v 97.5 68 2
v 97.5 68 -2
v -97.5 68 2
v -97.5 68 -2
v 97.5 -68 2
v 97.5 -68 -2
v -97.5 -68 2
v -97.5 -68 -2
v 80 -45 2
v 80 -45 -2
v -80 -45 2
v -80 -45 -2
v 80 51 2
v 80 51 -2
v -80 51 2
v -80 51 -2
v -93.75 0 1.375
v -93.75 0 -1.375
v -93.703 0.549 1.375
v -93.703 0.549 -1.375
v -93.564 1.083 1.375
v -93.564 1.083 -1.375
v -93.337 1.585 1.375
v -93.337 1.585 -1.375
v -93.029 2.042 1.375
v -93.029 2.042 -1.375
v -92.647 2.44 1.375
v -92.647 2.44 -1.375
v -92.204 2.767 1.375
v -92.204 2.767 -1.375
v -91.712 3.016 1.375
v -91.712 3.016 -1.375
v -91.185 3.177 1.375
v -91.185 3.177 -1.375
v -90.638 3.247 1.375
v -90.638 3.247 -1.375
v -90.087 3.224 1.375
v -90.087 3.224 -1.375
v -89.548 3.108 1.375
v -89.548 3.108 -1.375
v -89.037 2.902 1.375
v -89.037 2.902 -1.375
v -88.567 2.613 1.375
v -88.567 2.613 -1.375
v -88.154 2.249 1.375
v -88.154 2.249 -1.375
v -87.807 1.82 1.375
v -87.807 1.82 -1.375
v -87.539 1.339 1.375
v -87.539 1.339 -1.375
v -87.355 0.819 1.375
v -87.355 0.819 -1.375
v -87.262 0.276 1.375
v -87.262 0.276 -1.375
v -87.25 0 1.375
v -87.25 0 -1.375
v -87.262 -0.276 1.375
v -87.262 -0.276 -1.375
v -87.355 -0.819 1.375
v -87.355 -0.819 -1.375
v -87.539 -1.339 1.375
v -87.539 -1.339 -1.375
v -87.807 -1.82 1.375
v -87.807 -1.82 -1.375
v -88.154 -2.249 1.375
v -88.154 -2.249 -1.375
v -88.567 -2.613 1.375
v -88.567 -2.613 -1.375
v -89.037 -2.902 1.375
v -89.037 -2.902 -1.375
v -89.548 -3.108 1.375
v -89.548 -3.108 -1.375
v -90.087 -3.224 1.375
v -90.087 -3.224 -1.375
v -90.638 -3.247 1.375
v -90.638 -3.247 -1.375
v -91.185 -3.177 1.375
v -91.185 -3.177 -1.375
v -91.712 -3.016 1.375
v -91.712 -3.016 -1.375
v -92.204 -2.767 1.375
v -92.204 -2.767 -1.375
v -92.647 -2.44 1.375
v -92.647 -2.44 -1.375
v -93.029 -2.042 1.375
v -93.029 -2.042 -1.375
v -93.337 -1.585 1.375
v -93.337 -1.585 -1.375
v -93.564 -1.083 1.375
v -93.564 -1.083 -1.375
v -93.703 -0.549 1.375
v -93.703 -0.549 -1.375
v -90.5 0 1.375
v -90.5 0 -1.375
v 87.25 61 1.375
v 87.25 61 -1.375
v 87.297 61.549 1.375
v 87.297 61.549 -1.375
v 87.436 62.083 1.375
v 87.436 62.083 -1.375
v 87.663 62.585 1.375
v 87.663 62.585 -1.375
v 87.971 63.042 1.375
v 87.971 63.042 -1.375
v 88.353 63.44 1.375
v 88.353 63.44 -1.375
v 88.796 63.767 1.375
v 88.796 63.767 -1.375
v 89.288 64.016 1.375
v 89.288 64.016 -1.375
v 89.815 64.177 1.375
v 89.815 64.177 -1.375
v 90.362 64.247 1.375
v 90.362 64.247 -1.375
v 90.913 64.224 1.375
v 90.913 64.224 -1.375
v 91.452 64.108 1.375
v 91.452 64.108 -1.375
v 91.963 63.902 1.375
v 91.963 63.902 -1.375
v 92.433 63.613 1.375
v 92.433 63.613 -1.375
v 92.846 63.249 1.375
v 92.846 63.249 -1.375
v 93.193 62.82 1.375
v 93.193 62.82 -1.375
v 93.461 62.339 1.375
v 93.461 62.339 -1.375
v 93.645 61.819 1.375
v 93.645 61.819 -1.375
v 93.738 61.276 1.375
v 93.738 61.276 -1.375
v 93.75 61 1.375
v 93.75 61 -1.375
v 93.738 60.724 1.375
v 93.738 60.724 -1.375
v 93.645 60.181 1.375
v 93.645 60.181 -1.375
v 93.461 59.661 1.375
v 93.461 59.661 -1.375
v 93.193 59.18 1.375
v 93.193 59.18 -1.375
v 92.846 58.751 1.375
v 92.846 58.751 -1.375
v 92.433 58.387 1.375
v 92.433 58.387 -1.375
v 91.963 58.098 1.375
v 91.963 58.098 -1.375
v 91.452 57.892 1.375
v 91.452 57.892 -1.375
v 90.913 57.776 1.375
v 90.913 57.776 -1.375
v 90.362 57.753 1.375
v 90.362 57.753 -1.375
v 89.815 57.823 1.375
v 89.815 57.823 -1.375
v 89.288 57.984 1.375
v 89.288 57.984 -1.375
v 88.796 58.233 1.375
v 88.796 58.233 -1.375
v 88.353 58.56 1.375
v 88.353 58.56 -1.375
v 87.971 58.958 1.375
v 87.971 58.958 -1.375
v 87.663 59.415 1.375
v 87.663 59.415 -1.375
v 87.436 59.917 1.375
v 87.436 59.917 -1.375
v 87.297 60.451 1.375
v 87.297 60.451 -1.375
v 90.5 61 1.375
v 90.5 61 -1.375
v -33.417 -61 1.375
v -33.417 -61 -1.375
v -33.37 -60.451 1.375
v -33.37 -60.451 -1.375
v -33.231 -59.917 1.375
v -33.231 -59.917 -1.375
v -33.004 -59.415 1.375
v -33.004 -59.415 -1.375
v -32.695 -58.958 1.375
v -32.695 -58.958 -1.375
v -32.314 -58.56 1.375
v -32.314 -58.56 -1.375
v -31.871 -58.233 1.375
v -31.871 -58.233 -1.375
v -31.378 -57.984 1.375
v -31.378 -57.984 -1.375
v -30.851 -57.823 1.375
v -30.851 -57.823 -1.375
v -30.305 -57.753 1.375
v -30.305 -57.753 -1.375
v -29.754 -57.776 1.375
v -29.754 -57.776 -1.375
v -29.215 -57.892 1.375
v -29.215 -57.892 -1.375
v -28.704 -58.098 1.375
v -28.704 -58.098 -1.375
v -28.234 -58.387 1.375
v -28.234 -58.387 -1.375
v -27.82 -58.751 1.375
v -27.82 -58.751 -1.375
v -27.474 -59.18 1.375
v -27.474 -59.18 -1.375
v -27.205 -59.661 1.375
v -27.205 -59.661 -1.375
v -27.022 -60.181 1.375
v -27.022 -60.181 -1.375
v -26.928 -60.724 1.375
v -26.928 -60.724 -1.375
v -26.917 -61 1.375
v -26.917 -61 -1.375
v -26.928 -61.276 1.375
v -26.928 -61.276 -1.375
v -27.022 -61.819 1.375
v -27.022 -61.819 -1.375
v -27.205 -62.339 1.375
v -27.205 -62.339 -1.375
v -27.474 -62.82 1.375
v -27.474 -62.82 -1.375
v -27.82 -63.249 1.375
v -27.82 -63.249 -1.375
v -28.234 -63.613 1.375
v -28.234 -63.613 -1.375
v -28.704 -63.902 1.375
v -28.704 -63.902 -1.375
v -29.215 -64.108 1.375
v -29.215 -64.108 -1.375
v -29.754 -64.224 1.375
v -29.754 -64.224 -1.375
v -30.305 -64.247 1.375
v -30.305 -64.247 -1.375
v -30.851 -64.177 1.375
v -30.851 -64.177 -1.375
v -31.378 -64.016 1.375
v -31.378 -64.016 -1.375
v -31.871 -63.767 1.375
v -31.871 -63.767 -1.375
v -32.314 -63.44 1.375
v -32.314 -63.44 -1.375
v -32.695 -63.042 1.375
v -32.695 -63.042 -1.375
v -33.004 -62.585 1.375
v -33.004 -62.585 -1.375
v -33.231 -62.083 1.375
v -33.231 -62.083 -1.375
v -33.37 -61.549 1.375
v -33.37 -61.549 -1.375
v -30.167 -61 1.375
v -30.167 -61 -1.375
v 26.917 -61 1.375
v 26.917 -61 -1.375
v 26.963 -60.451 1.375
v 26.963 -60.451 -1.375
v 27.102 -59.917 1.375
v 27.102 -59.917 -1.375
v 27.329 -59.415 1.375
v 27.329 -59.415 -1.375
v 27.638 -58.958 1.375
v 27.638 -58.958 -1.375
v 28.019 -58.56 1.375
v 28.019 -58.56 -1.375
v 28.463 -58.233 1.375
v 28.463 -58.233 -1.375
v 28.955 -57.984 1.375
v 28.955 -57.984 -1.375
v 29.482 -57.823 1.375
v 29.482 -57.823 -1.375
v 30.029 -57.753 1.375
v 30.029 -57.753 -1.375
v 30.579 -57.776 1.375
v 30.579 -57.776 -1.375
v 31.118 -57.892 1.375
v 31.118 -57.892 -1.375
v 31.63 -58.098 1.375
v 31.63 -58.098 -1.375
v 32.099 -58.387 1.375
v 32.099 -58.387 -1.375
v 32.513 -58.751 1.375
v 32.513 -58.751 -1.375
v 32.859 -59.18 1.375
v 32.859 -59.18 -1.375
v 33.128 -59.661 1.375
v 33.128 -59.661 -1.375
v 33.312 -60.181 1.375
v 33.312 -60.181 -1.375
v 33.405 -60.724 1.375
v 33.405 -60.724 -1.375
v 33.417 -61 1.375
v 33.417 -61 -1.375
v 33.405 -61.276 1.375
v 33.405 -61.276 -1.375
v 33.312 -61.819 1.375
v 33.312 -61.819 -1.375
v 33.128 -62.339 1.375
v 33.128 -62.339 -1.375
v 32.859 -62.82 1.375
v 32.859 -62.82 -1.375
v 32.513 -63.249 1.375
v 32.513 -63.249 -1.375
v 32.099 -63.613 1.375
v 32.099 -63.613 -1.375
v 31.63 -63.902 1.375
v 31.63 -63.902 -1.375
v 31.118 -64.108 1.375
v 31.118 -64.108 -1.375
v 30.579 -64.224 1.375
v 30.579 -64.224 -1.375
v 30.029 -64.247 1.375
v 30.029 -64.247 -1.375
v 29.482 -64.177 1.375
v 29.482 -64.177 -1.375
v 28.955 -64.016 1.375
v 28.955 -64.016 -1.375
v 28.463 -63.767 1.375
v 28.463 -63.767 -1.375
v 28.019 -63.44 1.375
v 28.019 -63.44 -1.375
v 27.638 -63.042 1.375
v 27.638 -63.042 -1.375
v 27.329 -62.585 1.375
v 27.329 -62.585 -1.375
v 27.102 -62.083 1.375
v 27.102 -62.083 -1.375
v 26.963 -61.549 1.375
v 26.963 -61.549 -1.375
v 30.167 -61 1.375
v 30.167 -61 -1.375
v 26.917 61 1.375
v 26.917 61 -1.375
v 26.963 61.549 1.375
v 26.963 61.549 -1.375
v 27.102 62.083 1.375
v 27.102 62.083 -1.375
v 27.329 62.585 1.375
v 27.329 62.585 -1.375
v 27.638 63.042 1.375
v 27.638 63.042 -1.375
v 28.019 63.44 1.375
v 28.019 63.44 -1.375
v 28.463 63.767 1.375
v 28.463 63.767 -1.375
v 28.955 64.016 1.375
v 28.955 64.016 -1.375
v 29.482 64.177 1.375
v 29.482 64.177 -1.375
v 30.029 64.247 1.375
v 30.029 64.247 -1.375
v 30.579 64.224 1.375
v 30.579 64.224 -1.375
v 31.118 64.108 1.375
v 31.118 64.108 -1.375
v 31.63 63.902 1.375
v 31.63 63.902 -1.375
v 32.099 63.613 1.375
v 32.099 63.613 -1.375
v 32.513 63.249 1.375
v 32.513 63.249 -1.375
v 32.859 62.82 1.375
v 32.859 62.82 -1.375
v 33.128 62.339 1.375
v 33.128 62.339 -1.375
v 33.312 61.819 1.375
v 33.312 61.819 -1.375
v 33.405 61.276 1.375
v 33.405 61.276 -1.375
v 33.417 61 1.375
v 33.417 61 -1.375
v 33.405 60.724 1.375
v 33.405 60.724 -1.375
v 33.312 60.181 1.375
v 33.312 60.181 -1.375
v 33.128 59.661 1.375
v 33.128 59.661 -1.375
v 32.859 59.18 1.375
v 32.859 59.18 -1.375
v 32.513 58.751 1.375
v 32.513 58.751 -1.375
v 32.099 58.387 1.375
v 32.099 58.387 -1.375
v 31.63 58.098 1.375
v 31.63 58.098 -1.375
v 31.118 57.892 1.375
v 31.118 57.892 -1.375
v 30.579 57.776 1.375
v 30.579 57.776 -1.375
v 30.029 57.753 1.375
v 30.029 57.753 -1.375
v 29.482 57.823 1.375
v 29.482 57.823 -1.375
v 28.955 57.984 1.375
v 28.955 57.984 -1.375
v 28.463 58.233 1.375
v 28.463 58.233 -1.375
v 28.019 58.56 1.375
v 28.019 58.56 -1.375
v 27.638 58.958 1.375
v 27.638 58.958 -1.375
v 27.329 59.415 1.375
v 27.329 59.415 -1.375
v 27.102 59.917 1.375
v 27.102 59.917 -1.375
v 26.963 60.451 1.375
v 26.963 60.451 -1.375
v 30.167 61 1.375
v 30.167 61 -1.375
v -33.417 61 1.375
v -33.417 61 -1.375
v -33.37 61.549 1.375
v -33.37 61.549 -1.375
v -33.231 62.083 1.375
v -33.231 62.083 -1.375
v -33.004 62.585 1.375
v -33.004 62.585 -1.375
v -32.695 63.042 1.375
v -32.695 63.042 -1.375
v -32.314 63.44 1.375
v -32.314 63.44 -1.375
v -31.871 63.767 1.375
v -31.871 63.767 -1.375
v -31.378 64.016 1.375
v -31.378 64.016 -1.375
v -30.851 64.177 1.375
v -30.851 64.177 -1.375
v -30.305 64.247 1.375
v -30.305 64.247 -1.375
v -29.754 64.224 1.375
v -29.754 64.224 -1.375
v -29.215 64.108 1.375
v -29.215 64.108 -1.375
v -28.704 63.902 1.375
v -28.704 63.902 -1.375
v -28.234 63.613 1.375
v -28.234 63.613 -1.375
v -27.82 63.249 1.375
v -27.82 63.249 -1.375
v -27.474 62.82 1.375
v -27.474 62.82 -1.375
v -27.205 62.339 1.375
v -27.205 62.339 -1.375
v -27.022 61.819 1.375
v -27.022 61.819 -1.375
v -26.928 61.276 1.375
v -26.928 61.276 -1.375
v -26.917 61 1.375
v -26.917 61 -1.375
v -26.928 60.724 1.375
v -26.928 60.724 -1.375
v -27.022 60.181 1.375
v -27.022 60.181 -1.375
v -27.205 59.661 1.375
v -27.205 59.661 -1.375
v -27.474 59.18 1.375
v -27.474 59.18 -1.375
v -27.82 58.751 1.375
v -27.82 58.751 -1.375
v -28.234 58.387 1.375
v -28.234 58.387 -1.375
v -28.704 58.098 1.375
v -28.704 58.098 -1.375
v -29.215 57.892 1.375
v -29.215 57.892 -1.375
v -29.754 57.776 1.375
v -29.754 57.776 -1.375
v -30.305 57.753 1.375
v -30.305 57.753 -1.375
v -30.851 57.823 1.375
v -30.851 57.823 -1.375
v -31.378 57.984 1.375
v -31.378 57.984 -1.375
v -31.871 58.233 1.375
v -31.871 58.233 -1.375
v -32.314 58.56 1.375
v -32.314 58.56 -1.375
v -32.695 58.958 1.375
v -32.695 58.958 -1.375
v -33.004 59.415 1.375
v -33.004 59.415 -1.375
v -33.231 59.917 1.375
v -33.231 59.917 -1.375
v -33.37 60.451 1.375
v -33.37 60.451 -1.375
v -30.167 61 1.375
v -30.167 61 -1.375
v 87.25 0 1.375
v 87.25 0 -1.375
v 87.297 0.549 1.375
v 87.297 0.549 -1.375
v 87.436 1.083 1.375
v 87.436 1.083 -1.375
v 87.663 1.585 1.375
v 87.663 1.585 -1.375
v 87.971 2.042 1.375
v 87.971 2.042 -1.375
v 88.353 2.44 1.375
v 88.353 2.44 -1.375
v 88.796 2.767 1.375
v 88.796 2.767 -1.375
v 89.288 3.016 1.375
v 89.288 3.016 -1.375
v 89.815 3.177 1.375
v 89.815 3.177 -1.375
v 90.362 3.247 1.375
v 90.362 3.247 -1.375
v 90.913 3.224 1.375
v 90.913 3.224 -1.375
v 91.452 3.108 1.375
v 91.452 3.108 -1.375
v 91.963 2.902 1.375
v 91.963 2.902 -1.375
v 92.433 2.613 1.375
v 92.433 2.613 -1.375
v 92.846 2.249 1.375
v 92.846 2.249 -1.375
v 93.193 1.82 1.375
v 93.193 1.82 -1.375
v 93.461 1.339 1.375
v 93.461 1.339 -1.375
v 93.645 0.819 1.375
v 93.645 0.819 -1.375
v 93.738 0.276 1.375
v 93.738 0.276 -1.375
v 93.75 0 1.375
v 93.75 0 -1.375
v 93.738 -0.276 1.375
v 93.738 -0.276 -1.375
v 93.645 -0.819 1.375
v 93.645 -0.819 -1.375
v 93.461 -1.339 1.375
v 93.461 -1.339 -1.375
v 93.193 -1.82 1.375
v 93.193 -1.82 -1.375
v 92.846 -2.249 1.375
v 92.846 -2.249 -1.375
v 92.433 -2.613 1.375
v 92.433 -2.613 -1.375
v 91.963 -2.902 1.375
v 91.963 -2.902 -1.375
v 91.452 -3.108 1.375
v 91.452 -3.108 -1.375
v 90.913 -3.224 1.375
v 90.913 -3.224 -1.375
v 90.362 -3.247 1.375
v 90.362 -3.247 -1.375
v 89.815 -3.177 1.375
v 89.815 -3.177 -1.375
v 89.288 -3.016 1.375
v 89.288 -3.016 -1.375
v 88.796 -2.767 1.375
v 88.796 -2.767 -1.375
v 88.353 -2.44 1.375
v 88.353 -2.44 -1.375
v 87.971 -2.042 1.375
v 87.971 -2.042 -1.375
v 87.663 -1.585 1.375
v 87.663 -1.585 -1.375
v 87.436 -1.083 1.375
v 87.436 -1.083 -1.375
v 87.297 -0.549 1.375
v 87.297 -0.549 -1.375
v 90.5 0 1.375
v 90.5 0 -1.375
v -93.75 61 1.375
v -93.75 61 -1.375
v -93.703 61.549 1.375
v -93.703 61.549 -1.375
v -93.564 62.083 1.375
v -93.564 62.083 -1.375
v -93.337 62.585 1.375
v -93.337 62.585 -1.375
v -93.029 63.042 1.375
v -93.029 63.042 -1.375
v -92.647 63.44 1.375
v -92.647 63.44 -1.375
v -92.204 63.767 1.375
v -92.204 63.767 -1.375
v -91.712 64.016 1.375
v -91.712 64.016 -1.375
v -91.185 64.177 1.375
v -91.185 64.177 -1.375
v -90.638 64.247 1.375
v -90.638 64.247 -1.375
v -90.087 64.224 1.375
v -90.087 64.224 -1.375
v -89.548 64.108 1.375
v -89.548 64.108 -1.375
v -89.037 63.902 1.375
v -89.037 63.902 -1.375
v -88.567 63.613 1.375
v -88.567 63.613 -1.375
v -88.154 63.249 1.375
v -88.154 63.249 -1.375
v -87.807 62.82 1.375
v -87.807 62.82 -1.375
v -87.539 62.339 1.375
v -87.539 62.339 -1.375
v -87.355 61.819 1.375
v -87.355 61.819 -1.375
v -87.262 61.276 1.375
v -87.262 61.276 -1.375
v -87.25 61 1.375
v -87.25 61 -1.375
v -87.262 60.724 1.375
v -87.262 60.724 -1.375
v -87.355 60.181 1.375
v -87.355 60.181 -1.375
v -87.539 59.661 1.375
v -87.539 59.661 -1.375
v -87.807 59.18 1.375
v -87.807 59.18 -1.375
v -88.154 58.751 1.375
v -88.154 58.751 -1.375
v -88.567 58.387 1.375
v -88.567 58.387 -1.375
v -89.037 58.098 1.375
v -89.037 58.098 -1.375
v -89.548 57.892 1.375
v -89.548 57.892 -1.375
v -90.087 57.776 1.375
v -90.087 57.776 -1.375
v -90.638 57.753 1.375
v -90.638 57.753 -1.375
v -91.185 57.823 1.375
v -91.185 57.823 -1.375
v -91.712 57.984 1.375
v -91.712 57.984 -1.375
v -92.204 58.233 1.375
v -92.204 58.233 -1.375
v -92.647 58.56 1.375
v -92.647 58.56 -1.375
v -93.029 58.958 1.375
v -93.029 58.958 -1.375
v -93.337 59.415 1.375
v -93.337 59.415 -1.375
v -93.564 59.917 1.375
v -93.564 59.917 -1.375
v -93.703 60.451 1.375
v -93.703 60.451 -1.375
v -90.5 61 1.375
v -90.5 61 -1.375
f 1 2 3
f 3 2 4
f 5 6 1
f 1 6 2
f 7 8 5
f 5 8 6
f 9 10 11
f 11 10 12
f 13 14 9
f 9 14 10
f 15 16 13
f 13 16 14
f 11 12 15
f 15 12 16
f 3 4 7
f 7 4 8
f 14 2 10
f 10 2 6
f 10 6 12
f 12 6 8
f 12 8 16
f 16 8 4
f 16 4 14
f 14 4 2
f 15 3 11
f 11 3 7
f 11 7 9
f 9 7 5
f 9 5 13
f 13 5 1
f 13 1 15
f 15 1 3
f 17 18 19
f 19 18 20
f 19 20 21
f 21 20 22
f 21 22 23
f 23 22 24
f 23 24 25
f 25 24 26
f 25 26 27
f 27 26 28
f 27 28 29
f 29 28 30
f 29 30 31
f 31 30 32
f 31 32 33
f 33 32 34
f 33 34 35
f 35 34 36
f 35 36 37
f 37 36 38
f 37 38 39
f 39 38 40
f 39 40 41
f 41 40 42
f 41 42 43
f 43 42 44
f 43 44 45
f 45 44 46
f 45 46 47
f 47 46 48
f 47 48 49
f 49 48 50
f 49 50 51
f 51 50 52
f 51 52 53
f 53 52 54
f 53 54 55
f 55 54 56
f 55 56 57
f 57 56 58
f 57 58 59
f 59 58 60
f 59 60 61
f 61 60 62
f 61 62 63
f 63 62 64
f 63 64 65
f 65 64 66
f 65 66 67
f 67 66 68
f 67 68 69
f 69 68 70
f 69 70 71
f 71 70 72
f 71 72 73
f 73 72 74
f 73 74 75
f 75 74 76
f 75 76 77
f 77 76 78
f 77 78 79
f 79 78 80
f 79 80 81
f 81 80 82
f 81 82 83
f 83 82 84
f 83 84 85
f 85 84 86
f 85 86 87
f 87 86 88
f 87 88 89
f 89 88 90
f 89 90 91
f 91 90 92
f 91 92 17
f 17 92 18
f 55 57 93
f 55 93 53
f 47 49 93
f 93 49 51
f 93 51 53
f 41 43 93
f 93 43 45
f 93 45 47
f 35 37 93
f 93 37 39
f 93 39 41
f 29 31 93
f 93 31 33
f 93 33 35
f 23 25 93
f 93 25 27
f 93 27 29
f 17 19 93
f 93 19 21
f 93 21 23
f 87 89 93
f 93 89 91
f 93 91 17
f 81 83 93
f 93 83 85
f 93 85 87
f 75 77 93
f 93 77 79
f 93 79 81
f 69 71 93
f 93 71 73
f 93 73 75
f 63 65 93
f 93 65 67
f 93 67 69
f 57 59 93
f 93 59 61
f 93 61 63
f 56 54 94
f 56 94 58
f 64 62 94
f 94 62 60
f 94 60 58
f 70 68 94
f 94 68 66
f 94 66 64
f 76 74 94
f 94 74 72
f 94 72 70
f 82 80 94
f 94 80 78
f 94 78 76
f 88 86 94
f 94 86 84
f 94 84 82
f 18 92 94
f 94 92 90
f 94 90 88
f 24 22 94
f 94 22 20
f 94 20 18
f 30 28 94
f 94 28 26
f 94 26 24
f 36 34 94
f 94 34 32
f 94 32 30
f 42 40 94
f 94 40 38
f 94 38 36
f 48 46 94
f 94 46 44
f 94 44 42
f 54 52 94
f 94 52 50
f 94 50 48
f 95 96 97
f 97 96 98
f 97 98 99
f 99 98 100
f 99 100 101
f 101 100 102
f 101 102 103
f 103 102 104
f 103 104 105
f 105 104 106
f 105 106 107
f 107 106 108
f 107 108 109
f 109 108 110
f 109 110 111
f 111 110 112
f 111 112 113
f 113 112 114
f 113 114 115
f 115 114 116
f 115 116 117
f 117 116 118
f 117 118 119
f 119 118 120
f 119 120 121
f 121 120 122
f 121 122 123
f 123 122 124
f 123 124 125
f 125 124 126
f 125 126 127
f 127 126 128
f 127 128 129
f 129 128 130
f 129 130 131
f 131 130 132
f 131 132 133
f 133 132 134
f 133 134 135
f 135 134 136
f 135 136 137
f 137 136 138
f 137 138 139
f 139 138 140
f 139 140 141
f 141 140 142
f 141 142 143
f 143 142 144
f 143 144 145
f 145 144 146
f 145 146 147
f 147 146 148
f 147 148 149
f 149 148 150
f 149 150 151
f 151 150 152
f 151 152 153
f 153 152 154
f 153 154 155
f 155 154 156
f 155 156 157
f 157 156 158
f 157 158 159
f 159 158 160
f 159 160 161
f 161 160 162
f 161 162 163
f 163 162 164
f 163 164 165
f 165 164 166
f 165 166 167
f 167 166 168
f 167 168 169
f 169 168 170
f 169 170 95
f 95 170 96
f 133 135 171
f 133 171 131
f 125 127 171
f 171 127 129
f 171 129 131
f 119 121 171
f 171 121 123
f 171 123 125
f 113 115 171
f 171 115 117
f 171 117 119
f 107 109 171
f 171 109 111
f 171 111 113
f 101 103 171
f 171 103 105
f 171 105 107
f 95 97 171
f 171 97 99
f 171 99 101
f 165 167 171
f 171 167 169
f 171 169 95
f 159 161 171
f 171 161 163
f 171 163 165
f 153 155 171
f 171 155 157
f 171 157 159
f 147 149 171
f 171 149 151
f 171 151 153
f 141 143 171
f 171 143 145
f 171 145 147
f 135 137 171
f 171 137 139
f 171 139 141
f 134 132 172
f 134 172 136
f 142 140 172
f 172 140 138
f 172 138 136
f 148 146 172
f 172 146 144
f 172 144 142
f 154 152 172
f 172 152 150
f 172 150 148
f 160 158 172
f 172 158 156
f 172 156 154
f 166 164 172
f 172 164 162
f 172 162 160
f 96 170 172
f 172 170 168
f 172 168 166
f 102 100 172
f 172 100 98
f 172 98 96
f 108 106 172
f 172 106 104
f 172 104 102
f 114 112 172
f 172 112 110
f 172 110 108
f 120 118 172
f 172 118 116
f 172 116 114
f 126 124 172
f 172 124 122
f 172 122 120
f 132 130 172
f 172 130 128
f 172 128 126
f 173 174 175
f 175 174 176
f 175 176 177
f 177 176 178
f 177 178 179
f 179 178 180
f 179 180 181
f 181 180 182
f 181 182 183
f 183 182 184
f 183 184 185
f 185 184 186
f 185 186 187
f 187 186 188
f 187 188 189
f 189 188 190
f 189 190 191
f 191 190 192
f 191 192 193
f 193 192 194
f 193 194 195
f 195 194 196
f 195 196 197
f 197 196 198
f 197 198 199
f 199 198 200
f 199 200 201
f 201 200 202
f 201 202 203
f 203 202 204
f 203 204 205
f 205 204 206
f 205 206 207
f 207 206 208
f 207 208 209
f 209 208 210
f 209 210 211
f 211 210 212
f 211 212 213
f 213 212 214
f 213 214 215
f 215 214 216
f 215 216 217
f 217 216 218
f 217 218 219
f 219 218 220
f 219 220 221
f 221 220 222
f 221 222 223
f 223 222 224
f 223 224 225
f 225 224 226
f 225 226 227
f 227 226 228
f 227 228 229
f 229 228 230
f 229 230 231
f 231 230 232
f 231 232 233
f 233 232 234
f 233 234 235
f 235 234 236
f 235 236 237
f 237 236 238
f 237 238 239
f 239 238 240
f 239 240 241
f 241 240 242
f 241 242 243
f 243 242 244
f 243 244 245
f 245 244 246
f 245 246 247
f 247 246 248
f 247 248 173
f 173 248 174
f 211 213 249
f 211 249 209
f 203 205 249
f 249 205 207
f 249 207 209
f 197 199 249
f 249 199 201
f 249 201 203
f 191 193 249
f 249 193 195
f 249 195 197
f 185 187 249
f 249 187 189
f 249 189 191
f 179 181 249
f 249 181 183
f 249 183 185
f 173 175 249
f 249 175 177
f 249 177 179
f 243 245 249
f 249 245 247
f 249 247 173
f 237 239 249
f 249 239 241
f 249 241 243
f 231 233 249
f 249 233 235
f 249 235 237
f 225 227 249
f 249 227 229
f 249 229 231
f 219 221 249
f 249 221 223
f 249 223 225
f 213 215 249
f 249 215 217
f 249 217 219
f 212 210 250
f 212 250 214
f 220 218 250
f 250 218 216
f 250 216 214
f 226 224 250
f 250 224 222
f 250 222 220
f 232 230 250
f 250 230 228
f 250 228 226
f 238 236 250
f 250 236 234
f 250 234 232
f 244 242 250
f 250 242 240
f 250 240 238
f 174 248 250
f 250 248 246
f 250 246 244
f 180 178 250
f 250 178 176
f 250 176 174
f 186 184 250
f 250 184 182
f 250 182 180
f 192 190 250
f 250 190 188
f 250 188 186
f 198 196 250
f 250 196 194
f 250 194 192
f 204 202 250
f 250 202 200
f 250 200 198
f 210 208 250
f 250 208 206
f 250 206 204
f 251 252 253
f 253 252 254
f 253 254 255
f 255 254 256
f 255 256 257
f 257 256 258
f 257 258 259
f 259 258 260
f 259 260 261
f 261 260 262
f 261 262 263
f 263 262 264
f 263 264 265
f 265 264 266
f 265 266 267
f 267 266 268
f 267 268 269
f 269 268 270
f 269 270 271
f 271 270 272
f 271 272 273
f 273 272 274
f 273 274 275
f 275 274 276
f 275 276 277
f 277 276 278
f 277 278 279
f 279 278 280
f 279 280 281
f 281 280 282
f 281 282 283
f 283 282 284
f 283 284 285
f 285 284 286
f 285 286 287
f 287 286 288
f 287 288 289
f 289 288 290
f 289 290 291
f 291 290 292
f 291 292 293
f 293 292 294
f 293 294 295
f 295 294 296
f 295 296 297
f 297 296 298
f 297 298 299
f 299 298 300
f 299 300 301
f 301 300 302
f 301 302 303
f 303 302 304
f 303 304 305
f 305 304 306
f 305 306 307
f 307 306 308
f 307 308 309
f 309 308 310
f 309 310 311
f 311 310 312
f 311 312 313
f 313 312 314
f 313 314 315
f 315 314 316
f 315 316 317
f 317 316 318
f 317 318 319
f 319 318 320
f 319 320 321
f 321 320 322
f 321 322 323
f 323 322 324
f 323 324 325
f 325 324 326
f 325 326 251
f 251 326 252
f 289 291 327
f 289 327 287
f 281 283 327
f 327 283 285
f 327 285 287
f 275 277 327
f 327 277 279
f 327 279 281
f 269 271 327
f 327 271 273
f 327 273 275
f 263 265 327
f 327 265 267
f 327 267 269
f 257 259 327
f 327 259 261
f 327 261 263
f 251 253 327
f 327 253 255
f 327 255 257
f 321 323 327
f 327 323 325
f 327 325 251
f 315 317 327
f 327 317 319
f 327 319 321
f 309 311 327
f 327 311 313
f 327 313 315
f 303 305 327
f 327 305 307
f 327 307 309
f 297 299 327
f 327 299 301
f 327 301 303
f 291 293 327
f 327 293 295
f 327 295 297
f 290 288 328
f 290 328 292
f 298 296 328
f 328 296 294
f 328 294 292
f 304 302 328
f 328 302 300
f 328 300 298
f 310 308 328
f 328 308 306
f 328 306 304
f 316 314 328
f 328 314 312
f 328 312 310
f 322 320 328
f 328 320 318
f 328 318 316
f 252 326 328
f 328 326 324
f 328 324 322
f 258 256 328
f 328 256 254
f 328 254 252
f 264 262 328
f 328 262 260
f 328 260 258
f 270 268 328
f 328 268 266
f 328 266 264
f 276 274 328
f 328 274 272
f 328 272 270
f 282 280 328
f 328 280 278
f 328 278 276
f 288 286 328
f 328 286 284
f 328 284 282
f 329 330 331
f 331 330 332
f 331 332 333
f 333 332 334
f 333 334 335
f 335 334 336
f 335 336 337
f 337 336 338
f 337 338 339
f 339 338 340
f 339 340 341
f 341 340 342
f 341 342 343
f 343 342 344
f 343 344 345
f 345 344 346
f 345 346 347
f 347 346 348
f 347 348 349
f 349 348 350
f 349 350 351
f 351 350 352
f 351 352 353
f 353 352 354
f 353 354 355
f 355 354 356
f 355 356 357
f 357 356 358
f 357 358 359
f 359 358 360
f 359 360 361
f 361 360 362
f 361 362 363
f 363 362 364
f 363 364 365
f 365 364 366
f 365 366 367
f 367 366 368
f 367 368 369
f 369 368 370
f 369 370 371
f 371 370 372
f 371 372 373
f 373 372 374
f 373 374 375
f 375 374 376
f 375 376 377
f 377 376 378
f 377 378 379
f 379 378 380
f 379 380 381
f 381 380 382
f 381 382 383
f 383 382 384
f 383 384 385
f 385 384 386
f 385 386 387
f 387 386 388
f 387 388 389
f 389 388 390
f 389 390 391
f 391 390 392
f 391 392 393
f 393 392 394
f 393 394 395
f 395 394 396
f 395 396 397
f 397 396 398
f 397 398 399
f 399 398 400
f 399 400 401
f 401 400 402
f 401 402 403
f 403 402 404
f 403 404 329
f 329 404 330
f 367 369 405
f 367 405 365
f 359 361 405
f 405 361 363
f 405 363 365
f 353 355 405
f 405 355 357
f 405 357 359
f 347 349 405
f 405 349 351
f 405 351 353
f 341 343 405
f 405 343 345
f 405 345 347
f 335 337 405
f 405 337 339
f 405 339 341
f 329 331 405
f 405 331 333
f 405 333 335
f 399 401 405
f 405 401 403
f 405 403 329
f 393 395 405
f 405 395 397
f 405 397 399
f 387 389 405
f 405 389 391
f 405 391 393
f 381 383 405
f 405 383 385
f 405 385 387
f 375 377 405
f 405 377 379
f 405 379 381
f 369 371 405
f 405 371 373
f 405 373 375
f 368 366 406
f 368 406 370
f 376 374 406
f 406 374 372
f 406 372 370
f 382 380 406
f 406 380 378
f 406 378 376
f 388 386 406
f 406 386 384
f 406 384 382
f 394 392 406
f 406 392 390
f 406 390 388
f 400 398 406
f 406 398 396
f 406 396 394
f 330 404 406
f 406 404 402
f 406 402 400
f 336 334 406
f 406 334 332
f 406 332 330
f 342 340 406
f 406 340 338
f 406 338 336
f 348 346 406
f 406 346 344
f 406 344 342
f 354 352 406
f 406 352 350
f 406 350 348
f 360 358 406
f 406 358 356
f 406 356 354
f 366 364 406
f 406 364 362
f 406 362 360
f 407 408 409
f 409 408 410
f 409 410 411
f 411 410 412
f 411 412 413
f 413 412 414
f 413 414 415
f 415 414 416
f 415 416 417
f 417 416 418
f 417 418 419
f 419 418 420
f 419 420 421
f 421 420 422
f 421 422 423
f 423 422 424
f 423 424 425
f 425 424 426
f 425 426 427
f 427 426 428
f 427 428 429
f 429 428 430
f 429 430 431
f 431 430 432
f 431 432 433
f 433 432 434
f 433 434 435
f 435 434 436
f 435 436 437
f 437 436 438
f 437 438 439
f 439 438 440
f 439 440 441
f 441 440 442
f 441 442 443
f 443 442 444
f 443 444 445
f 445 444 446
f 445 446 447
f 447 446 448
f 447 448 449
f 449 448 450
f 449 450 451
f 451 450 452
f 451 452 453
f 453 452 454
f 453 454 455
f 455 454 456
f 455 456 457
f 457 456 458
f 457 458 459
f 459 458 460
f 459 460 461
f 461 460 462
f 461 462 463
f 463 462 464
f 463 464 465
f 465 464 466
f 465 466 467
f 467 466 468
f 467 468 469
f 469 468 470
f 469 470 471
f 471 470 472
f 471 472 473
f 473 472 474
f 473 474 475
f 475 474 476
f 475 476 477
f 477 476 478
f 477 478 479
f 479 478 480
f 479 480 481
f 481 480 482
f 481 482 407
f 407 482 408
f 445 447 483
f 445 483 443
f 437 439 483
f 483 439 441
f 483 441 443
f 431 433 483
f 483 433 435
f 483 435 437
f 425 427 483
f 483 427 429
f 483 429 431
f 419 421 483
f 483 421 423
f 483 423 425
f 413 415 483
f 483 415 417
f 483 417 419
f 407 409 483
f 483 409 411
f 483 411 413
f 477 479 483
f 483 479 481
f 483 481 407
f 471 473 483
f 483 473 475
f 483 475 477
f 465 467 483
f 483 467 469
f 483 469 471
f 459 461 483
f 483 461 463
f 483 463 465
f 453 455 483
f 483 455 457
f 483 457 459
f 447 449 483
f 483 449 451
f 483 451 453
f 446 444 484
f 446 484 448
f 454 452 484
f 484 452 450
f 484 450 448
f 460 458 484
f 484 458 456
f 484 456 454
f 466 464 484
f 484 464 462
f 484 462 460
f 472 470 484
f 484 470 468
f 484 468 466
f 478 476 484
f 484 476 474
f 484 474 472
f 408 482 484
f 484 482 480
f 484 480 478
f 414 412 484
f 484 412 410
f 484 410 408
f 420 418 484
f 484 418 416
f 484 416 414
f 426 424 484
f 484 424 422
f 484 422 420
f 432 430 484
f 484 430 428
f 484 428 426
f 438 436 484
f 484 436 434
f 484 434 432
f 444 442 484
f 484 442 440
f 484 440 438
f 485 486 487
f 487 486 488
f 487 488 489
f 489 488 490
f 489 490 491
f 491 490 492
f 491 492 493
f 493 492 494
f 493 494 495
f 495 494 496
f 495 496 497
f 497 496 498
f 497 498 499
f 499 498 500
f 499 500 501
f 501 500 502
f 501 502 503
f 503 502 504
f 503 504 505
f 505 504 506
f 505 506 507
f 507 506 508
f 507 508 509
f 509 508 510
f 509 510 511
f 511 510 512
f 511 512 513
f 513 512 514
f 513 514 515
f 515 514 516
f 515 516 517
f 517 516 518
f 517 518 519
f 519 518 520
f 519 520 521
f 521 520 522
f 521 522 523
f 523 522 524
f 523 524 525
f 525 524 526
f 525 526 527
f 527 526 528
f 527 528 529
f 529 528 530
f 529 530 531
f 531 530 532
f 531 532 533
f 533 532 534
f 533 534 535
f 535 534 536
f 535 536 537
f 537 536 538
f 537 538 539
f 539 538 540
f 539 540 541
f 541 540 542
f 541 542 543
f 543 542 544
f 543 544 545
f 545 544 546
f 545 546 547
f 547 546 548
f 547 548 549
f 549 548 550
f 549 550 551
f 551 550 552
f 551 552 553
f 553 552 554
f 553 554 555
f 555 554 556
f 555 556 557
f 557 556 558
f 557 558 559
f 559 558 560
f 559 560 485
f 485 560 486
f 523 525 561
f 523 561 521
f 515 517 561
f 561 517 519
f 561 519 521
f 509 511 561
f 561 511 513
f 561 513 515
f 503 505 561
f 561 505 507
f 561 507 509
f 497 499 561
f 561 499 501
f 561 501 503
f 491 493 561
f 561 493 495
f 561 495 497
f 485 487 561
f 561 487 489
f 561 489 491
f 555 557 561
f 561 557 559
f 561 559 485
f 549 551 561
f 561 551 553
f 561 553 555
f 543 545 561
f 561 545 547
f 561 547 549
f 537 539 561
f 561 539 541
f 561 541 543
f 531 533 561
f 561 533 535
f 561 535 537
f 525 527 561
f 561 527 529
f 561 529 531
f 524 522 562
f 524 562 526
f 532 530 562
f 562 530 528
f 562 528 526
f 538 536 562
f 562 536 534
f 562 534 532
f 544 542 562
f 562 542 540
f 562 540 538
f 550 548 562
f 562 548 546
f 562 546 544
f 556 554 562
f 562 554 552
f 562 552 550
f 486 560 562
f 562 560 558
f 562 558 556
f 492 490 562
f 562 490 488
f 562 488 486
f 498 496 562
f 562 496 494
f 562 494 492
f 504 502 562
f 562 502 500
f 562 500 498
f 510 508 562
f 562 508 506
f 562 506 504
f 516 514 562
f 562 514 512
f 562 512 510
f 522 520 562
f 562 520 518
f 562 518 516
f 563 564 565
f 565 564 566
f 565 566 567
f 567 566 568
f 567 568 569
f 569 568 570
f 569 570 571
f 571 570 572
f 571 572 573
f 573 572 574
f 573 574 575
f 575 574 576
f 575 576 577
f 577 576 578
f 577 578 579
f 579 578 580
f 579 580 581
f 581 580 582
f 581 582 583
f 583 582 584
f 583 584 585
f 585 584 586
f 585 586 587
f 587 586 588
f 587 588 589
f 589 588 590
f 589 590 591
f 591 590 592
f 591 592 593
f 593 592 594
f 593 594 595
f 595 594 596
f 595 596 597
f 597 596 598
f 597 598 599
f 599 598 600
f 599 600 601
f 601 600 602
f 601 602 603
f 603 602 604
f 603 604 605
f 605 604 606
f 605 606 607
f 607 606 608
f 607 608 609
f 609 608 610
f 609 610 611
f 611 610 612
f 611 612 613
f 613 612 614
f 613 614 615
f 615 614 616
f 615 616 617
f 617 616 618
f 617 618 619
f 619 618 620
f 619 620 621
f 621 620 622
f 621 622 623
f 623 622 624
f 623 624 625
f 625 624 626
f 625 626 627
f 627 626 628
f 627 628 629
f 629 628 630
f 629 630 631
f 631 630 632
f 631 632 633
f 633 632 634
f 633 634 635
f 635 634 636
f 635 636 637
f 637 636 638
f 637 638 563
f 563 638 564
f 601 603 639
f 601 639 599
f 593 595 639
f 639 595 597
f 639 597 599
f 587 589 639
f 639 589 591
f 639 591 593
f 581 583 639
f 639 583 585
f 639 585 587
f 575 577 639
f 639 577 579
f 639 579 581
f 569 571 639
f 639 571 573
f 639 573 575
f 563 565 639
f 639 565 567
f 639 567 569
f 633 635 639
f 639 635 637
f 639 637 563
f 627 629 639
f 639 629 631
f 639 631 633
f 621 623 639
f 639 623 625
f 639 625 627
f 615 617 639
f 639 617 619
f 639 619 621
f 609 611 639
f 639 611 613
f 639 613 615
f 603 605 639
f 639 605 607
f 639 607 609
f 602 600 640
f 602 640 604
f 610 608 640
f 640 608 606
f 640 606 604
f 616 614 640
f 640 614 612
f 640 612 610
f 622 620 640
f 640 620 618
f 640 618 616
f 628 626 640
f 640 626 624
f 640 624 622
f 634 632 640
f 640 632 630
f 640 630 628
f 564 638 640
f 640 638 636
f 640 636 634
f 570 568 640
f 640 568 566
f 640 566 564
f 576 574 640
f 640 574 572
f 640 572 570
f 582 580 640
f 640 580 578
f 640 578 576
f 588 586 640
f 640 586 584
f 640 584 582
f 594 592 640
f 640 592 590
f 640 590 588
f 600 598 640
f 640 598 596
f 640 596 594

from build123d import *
from build123d.topology import SkipClean

# Parameters (mm, degrees)
SKETCH1_W               = 195
SKETCH1_H               = 136
SKETCH1_W_2             = 160
SKETCH1_H_2             = 96
BOSS_EXTRUDE1_DEPTH     = 2
SKETCH1_3_W             = 195
SKETCH1_3_H             = 136
SKETCH1_3_W_2           = 160
SKETCH1_3_H_2           = 96
BOSS_EXTRUDE2_DEPTH     = 2
CUT_EXTRUDE1_DEPTH      = 1.375
CUT_EXTRUDE1_DEPTH_BACK = 1.375
SKETCH2_R               = 3.25


with BuildPart() as part:
    # Sketch1 → Boss-Extrude1 (new body)
    with BuildSketch(Plane.XY):
        Rectangle(SKETCH1_W, SKETCH1_H)
        with Locations((0, 3)):
            Rectangle(SKETCH1_W_2, SKETCH1_H_2, mode=Mode.SUBTRACT)
    extrude(amount=-BOSS_EXTRUDE1_DEPTH)

    # Sketch1<3> → Boss-Extrude2 (add)
    with BuildSketch(Plane.XY):
        Rectangle(SKETCH1_3_W, SKETCH1_3_H)
        with Locations((0, 3)):
            Rectangle(SKETCH1_3_W_2, SKETCH1_3_H_2, mode=Mode.SUBTRACT)
    extrude(amount=BOSS_EXTRUDE2_DEPTH)

    # Sketch2 → Cut-Extrude1 (cut, two sides: drawn at the far end of the back side and taken through both)
    with SkipClean():  # the faces are left unmerged after this step: merging them gives an invalid solid
        with BuildSketch(Plane.XY.offset(-CUT_EXTRUDE1_DEPTH_BACK)):
            with Locations((-90.5, 61)):
                Circle(SKETCH2_R)
            with Locations((90.5, 61)):
                Circle(SKETCH2_R)
            with Locations((-30.166666667, -61)):
                Circle(SKETCH2_R)
            with Locations((30.166666667, -61)):
                Circle(SKETCH2_R)
            with Locations((90.5, 0)):
                Circle(SKETCH2_R)
            with Locations((-30.166666667, 61)):
                Circle(SKETCH2_R)
            with Locations((30.166666667, 61)):
                Circle(SKETCH2_R)
            with Locations((-90.5, 0)):
                Circle(SKETCH2_R)
        extrude(amount=CUT_EXTRUDE1_DEPTH + CUT_EXTRUDE1_DEPTH_BACK, mode=Mode.SUBTRACT)


solid = part.part
